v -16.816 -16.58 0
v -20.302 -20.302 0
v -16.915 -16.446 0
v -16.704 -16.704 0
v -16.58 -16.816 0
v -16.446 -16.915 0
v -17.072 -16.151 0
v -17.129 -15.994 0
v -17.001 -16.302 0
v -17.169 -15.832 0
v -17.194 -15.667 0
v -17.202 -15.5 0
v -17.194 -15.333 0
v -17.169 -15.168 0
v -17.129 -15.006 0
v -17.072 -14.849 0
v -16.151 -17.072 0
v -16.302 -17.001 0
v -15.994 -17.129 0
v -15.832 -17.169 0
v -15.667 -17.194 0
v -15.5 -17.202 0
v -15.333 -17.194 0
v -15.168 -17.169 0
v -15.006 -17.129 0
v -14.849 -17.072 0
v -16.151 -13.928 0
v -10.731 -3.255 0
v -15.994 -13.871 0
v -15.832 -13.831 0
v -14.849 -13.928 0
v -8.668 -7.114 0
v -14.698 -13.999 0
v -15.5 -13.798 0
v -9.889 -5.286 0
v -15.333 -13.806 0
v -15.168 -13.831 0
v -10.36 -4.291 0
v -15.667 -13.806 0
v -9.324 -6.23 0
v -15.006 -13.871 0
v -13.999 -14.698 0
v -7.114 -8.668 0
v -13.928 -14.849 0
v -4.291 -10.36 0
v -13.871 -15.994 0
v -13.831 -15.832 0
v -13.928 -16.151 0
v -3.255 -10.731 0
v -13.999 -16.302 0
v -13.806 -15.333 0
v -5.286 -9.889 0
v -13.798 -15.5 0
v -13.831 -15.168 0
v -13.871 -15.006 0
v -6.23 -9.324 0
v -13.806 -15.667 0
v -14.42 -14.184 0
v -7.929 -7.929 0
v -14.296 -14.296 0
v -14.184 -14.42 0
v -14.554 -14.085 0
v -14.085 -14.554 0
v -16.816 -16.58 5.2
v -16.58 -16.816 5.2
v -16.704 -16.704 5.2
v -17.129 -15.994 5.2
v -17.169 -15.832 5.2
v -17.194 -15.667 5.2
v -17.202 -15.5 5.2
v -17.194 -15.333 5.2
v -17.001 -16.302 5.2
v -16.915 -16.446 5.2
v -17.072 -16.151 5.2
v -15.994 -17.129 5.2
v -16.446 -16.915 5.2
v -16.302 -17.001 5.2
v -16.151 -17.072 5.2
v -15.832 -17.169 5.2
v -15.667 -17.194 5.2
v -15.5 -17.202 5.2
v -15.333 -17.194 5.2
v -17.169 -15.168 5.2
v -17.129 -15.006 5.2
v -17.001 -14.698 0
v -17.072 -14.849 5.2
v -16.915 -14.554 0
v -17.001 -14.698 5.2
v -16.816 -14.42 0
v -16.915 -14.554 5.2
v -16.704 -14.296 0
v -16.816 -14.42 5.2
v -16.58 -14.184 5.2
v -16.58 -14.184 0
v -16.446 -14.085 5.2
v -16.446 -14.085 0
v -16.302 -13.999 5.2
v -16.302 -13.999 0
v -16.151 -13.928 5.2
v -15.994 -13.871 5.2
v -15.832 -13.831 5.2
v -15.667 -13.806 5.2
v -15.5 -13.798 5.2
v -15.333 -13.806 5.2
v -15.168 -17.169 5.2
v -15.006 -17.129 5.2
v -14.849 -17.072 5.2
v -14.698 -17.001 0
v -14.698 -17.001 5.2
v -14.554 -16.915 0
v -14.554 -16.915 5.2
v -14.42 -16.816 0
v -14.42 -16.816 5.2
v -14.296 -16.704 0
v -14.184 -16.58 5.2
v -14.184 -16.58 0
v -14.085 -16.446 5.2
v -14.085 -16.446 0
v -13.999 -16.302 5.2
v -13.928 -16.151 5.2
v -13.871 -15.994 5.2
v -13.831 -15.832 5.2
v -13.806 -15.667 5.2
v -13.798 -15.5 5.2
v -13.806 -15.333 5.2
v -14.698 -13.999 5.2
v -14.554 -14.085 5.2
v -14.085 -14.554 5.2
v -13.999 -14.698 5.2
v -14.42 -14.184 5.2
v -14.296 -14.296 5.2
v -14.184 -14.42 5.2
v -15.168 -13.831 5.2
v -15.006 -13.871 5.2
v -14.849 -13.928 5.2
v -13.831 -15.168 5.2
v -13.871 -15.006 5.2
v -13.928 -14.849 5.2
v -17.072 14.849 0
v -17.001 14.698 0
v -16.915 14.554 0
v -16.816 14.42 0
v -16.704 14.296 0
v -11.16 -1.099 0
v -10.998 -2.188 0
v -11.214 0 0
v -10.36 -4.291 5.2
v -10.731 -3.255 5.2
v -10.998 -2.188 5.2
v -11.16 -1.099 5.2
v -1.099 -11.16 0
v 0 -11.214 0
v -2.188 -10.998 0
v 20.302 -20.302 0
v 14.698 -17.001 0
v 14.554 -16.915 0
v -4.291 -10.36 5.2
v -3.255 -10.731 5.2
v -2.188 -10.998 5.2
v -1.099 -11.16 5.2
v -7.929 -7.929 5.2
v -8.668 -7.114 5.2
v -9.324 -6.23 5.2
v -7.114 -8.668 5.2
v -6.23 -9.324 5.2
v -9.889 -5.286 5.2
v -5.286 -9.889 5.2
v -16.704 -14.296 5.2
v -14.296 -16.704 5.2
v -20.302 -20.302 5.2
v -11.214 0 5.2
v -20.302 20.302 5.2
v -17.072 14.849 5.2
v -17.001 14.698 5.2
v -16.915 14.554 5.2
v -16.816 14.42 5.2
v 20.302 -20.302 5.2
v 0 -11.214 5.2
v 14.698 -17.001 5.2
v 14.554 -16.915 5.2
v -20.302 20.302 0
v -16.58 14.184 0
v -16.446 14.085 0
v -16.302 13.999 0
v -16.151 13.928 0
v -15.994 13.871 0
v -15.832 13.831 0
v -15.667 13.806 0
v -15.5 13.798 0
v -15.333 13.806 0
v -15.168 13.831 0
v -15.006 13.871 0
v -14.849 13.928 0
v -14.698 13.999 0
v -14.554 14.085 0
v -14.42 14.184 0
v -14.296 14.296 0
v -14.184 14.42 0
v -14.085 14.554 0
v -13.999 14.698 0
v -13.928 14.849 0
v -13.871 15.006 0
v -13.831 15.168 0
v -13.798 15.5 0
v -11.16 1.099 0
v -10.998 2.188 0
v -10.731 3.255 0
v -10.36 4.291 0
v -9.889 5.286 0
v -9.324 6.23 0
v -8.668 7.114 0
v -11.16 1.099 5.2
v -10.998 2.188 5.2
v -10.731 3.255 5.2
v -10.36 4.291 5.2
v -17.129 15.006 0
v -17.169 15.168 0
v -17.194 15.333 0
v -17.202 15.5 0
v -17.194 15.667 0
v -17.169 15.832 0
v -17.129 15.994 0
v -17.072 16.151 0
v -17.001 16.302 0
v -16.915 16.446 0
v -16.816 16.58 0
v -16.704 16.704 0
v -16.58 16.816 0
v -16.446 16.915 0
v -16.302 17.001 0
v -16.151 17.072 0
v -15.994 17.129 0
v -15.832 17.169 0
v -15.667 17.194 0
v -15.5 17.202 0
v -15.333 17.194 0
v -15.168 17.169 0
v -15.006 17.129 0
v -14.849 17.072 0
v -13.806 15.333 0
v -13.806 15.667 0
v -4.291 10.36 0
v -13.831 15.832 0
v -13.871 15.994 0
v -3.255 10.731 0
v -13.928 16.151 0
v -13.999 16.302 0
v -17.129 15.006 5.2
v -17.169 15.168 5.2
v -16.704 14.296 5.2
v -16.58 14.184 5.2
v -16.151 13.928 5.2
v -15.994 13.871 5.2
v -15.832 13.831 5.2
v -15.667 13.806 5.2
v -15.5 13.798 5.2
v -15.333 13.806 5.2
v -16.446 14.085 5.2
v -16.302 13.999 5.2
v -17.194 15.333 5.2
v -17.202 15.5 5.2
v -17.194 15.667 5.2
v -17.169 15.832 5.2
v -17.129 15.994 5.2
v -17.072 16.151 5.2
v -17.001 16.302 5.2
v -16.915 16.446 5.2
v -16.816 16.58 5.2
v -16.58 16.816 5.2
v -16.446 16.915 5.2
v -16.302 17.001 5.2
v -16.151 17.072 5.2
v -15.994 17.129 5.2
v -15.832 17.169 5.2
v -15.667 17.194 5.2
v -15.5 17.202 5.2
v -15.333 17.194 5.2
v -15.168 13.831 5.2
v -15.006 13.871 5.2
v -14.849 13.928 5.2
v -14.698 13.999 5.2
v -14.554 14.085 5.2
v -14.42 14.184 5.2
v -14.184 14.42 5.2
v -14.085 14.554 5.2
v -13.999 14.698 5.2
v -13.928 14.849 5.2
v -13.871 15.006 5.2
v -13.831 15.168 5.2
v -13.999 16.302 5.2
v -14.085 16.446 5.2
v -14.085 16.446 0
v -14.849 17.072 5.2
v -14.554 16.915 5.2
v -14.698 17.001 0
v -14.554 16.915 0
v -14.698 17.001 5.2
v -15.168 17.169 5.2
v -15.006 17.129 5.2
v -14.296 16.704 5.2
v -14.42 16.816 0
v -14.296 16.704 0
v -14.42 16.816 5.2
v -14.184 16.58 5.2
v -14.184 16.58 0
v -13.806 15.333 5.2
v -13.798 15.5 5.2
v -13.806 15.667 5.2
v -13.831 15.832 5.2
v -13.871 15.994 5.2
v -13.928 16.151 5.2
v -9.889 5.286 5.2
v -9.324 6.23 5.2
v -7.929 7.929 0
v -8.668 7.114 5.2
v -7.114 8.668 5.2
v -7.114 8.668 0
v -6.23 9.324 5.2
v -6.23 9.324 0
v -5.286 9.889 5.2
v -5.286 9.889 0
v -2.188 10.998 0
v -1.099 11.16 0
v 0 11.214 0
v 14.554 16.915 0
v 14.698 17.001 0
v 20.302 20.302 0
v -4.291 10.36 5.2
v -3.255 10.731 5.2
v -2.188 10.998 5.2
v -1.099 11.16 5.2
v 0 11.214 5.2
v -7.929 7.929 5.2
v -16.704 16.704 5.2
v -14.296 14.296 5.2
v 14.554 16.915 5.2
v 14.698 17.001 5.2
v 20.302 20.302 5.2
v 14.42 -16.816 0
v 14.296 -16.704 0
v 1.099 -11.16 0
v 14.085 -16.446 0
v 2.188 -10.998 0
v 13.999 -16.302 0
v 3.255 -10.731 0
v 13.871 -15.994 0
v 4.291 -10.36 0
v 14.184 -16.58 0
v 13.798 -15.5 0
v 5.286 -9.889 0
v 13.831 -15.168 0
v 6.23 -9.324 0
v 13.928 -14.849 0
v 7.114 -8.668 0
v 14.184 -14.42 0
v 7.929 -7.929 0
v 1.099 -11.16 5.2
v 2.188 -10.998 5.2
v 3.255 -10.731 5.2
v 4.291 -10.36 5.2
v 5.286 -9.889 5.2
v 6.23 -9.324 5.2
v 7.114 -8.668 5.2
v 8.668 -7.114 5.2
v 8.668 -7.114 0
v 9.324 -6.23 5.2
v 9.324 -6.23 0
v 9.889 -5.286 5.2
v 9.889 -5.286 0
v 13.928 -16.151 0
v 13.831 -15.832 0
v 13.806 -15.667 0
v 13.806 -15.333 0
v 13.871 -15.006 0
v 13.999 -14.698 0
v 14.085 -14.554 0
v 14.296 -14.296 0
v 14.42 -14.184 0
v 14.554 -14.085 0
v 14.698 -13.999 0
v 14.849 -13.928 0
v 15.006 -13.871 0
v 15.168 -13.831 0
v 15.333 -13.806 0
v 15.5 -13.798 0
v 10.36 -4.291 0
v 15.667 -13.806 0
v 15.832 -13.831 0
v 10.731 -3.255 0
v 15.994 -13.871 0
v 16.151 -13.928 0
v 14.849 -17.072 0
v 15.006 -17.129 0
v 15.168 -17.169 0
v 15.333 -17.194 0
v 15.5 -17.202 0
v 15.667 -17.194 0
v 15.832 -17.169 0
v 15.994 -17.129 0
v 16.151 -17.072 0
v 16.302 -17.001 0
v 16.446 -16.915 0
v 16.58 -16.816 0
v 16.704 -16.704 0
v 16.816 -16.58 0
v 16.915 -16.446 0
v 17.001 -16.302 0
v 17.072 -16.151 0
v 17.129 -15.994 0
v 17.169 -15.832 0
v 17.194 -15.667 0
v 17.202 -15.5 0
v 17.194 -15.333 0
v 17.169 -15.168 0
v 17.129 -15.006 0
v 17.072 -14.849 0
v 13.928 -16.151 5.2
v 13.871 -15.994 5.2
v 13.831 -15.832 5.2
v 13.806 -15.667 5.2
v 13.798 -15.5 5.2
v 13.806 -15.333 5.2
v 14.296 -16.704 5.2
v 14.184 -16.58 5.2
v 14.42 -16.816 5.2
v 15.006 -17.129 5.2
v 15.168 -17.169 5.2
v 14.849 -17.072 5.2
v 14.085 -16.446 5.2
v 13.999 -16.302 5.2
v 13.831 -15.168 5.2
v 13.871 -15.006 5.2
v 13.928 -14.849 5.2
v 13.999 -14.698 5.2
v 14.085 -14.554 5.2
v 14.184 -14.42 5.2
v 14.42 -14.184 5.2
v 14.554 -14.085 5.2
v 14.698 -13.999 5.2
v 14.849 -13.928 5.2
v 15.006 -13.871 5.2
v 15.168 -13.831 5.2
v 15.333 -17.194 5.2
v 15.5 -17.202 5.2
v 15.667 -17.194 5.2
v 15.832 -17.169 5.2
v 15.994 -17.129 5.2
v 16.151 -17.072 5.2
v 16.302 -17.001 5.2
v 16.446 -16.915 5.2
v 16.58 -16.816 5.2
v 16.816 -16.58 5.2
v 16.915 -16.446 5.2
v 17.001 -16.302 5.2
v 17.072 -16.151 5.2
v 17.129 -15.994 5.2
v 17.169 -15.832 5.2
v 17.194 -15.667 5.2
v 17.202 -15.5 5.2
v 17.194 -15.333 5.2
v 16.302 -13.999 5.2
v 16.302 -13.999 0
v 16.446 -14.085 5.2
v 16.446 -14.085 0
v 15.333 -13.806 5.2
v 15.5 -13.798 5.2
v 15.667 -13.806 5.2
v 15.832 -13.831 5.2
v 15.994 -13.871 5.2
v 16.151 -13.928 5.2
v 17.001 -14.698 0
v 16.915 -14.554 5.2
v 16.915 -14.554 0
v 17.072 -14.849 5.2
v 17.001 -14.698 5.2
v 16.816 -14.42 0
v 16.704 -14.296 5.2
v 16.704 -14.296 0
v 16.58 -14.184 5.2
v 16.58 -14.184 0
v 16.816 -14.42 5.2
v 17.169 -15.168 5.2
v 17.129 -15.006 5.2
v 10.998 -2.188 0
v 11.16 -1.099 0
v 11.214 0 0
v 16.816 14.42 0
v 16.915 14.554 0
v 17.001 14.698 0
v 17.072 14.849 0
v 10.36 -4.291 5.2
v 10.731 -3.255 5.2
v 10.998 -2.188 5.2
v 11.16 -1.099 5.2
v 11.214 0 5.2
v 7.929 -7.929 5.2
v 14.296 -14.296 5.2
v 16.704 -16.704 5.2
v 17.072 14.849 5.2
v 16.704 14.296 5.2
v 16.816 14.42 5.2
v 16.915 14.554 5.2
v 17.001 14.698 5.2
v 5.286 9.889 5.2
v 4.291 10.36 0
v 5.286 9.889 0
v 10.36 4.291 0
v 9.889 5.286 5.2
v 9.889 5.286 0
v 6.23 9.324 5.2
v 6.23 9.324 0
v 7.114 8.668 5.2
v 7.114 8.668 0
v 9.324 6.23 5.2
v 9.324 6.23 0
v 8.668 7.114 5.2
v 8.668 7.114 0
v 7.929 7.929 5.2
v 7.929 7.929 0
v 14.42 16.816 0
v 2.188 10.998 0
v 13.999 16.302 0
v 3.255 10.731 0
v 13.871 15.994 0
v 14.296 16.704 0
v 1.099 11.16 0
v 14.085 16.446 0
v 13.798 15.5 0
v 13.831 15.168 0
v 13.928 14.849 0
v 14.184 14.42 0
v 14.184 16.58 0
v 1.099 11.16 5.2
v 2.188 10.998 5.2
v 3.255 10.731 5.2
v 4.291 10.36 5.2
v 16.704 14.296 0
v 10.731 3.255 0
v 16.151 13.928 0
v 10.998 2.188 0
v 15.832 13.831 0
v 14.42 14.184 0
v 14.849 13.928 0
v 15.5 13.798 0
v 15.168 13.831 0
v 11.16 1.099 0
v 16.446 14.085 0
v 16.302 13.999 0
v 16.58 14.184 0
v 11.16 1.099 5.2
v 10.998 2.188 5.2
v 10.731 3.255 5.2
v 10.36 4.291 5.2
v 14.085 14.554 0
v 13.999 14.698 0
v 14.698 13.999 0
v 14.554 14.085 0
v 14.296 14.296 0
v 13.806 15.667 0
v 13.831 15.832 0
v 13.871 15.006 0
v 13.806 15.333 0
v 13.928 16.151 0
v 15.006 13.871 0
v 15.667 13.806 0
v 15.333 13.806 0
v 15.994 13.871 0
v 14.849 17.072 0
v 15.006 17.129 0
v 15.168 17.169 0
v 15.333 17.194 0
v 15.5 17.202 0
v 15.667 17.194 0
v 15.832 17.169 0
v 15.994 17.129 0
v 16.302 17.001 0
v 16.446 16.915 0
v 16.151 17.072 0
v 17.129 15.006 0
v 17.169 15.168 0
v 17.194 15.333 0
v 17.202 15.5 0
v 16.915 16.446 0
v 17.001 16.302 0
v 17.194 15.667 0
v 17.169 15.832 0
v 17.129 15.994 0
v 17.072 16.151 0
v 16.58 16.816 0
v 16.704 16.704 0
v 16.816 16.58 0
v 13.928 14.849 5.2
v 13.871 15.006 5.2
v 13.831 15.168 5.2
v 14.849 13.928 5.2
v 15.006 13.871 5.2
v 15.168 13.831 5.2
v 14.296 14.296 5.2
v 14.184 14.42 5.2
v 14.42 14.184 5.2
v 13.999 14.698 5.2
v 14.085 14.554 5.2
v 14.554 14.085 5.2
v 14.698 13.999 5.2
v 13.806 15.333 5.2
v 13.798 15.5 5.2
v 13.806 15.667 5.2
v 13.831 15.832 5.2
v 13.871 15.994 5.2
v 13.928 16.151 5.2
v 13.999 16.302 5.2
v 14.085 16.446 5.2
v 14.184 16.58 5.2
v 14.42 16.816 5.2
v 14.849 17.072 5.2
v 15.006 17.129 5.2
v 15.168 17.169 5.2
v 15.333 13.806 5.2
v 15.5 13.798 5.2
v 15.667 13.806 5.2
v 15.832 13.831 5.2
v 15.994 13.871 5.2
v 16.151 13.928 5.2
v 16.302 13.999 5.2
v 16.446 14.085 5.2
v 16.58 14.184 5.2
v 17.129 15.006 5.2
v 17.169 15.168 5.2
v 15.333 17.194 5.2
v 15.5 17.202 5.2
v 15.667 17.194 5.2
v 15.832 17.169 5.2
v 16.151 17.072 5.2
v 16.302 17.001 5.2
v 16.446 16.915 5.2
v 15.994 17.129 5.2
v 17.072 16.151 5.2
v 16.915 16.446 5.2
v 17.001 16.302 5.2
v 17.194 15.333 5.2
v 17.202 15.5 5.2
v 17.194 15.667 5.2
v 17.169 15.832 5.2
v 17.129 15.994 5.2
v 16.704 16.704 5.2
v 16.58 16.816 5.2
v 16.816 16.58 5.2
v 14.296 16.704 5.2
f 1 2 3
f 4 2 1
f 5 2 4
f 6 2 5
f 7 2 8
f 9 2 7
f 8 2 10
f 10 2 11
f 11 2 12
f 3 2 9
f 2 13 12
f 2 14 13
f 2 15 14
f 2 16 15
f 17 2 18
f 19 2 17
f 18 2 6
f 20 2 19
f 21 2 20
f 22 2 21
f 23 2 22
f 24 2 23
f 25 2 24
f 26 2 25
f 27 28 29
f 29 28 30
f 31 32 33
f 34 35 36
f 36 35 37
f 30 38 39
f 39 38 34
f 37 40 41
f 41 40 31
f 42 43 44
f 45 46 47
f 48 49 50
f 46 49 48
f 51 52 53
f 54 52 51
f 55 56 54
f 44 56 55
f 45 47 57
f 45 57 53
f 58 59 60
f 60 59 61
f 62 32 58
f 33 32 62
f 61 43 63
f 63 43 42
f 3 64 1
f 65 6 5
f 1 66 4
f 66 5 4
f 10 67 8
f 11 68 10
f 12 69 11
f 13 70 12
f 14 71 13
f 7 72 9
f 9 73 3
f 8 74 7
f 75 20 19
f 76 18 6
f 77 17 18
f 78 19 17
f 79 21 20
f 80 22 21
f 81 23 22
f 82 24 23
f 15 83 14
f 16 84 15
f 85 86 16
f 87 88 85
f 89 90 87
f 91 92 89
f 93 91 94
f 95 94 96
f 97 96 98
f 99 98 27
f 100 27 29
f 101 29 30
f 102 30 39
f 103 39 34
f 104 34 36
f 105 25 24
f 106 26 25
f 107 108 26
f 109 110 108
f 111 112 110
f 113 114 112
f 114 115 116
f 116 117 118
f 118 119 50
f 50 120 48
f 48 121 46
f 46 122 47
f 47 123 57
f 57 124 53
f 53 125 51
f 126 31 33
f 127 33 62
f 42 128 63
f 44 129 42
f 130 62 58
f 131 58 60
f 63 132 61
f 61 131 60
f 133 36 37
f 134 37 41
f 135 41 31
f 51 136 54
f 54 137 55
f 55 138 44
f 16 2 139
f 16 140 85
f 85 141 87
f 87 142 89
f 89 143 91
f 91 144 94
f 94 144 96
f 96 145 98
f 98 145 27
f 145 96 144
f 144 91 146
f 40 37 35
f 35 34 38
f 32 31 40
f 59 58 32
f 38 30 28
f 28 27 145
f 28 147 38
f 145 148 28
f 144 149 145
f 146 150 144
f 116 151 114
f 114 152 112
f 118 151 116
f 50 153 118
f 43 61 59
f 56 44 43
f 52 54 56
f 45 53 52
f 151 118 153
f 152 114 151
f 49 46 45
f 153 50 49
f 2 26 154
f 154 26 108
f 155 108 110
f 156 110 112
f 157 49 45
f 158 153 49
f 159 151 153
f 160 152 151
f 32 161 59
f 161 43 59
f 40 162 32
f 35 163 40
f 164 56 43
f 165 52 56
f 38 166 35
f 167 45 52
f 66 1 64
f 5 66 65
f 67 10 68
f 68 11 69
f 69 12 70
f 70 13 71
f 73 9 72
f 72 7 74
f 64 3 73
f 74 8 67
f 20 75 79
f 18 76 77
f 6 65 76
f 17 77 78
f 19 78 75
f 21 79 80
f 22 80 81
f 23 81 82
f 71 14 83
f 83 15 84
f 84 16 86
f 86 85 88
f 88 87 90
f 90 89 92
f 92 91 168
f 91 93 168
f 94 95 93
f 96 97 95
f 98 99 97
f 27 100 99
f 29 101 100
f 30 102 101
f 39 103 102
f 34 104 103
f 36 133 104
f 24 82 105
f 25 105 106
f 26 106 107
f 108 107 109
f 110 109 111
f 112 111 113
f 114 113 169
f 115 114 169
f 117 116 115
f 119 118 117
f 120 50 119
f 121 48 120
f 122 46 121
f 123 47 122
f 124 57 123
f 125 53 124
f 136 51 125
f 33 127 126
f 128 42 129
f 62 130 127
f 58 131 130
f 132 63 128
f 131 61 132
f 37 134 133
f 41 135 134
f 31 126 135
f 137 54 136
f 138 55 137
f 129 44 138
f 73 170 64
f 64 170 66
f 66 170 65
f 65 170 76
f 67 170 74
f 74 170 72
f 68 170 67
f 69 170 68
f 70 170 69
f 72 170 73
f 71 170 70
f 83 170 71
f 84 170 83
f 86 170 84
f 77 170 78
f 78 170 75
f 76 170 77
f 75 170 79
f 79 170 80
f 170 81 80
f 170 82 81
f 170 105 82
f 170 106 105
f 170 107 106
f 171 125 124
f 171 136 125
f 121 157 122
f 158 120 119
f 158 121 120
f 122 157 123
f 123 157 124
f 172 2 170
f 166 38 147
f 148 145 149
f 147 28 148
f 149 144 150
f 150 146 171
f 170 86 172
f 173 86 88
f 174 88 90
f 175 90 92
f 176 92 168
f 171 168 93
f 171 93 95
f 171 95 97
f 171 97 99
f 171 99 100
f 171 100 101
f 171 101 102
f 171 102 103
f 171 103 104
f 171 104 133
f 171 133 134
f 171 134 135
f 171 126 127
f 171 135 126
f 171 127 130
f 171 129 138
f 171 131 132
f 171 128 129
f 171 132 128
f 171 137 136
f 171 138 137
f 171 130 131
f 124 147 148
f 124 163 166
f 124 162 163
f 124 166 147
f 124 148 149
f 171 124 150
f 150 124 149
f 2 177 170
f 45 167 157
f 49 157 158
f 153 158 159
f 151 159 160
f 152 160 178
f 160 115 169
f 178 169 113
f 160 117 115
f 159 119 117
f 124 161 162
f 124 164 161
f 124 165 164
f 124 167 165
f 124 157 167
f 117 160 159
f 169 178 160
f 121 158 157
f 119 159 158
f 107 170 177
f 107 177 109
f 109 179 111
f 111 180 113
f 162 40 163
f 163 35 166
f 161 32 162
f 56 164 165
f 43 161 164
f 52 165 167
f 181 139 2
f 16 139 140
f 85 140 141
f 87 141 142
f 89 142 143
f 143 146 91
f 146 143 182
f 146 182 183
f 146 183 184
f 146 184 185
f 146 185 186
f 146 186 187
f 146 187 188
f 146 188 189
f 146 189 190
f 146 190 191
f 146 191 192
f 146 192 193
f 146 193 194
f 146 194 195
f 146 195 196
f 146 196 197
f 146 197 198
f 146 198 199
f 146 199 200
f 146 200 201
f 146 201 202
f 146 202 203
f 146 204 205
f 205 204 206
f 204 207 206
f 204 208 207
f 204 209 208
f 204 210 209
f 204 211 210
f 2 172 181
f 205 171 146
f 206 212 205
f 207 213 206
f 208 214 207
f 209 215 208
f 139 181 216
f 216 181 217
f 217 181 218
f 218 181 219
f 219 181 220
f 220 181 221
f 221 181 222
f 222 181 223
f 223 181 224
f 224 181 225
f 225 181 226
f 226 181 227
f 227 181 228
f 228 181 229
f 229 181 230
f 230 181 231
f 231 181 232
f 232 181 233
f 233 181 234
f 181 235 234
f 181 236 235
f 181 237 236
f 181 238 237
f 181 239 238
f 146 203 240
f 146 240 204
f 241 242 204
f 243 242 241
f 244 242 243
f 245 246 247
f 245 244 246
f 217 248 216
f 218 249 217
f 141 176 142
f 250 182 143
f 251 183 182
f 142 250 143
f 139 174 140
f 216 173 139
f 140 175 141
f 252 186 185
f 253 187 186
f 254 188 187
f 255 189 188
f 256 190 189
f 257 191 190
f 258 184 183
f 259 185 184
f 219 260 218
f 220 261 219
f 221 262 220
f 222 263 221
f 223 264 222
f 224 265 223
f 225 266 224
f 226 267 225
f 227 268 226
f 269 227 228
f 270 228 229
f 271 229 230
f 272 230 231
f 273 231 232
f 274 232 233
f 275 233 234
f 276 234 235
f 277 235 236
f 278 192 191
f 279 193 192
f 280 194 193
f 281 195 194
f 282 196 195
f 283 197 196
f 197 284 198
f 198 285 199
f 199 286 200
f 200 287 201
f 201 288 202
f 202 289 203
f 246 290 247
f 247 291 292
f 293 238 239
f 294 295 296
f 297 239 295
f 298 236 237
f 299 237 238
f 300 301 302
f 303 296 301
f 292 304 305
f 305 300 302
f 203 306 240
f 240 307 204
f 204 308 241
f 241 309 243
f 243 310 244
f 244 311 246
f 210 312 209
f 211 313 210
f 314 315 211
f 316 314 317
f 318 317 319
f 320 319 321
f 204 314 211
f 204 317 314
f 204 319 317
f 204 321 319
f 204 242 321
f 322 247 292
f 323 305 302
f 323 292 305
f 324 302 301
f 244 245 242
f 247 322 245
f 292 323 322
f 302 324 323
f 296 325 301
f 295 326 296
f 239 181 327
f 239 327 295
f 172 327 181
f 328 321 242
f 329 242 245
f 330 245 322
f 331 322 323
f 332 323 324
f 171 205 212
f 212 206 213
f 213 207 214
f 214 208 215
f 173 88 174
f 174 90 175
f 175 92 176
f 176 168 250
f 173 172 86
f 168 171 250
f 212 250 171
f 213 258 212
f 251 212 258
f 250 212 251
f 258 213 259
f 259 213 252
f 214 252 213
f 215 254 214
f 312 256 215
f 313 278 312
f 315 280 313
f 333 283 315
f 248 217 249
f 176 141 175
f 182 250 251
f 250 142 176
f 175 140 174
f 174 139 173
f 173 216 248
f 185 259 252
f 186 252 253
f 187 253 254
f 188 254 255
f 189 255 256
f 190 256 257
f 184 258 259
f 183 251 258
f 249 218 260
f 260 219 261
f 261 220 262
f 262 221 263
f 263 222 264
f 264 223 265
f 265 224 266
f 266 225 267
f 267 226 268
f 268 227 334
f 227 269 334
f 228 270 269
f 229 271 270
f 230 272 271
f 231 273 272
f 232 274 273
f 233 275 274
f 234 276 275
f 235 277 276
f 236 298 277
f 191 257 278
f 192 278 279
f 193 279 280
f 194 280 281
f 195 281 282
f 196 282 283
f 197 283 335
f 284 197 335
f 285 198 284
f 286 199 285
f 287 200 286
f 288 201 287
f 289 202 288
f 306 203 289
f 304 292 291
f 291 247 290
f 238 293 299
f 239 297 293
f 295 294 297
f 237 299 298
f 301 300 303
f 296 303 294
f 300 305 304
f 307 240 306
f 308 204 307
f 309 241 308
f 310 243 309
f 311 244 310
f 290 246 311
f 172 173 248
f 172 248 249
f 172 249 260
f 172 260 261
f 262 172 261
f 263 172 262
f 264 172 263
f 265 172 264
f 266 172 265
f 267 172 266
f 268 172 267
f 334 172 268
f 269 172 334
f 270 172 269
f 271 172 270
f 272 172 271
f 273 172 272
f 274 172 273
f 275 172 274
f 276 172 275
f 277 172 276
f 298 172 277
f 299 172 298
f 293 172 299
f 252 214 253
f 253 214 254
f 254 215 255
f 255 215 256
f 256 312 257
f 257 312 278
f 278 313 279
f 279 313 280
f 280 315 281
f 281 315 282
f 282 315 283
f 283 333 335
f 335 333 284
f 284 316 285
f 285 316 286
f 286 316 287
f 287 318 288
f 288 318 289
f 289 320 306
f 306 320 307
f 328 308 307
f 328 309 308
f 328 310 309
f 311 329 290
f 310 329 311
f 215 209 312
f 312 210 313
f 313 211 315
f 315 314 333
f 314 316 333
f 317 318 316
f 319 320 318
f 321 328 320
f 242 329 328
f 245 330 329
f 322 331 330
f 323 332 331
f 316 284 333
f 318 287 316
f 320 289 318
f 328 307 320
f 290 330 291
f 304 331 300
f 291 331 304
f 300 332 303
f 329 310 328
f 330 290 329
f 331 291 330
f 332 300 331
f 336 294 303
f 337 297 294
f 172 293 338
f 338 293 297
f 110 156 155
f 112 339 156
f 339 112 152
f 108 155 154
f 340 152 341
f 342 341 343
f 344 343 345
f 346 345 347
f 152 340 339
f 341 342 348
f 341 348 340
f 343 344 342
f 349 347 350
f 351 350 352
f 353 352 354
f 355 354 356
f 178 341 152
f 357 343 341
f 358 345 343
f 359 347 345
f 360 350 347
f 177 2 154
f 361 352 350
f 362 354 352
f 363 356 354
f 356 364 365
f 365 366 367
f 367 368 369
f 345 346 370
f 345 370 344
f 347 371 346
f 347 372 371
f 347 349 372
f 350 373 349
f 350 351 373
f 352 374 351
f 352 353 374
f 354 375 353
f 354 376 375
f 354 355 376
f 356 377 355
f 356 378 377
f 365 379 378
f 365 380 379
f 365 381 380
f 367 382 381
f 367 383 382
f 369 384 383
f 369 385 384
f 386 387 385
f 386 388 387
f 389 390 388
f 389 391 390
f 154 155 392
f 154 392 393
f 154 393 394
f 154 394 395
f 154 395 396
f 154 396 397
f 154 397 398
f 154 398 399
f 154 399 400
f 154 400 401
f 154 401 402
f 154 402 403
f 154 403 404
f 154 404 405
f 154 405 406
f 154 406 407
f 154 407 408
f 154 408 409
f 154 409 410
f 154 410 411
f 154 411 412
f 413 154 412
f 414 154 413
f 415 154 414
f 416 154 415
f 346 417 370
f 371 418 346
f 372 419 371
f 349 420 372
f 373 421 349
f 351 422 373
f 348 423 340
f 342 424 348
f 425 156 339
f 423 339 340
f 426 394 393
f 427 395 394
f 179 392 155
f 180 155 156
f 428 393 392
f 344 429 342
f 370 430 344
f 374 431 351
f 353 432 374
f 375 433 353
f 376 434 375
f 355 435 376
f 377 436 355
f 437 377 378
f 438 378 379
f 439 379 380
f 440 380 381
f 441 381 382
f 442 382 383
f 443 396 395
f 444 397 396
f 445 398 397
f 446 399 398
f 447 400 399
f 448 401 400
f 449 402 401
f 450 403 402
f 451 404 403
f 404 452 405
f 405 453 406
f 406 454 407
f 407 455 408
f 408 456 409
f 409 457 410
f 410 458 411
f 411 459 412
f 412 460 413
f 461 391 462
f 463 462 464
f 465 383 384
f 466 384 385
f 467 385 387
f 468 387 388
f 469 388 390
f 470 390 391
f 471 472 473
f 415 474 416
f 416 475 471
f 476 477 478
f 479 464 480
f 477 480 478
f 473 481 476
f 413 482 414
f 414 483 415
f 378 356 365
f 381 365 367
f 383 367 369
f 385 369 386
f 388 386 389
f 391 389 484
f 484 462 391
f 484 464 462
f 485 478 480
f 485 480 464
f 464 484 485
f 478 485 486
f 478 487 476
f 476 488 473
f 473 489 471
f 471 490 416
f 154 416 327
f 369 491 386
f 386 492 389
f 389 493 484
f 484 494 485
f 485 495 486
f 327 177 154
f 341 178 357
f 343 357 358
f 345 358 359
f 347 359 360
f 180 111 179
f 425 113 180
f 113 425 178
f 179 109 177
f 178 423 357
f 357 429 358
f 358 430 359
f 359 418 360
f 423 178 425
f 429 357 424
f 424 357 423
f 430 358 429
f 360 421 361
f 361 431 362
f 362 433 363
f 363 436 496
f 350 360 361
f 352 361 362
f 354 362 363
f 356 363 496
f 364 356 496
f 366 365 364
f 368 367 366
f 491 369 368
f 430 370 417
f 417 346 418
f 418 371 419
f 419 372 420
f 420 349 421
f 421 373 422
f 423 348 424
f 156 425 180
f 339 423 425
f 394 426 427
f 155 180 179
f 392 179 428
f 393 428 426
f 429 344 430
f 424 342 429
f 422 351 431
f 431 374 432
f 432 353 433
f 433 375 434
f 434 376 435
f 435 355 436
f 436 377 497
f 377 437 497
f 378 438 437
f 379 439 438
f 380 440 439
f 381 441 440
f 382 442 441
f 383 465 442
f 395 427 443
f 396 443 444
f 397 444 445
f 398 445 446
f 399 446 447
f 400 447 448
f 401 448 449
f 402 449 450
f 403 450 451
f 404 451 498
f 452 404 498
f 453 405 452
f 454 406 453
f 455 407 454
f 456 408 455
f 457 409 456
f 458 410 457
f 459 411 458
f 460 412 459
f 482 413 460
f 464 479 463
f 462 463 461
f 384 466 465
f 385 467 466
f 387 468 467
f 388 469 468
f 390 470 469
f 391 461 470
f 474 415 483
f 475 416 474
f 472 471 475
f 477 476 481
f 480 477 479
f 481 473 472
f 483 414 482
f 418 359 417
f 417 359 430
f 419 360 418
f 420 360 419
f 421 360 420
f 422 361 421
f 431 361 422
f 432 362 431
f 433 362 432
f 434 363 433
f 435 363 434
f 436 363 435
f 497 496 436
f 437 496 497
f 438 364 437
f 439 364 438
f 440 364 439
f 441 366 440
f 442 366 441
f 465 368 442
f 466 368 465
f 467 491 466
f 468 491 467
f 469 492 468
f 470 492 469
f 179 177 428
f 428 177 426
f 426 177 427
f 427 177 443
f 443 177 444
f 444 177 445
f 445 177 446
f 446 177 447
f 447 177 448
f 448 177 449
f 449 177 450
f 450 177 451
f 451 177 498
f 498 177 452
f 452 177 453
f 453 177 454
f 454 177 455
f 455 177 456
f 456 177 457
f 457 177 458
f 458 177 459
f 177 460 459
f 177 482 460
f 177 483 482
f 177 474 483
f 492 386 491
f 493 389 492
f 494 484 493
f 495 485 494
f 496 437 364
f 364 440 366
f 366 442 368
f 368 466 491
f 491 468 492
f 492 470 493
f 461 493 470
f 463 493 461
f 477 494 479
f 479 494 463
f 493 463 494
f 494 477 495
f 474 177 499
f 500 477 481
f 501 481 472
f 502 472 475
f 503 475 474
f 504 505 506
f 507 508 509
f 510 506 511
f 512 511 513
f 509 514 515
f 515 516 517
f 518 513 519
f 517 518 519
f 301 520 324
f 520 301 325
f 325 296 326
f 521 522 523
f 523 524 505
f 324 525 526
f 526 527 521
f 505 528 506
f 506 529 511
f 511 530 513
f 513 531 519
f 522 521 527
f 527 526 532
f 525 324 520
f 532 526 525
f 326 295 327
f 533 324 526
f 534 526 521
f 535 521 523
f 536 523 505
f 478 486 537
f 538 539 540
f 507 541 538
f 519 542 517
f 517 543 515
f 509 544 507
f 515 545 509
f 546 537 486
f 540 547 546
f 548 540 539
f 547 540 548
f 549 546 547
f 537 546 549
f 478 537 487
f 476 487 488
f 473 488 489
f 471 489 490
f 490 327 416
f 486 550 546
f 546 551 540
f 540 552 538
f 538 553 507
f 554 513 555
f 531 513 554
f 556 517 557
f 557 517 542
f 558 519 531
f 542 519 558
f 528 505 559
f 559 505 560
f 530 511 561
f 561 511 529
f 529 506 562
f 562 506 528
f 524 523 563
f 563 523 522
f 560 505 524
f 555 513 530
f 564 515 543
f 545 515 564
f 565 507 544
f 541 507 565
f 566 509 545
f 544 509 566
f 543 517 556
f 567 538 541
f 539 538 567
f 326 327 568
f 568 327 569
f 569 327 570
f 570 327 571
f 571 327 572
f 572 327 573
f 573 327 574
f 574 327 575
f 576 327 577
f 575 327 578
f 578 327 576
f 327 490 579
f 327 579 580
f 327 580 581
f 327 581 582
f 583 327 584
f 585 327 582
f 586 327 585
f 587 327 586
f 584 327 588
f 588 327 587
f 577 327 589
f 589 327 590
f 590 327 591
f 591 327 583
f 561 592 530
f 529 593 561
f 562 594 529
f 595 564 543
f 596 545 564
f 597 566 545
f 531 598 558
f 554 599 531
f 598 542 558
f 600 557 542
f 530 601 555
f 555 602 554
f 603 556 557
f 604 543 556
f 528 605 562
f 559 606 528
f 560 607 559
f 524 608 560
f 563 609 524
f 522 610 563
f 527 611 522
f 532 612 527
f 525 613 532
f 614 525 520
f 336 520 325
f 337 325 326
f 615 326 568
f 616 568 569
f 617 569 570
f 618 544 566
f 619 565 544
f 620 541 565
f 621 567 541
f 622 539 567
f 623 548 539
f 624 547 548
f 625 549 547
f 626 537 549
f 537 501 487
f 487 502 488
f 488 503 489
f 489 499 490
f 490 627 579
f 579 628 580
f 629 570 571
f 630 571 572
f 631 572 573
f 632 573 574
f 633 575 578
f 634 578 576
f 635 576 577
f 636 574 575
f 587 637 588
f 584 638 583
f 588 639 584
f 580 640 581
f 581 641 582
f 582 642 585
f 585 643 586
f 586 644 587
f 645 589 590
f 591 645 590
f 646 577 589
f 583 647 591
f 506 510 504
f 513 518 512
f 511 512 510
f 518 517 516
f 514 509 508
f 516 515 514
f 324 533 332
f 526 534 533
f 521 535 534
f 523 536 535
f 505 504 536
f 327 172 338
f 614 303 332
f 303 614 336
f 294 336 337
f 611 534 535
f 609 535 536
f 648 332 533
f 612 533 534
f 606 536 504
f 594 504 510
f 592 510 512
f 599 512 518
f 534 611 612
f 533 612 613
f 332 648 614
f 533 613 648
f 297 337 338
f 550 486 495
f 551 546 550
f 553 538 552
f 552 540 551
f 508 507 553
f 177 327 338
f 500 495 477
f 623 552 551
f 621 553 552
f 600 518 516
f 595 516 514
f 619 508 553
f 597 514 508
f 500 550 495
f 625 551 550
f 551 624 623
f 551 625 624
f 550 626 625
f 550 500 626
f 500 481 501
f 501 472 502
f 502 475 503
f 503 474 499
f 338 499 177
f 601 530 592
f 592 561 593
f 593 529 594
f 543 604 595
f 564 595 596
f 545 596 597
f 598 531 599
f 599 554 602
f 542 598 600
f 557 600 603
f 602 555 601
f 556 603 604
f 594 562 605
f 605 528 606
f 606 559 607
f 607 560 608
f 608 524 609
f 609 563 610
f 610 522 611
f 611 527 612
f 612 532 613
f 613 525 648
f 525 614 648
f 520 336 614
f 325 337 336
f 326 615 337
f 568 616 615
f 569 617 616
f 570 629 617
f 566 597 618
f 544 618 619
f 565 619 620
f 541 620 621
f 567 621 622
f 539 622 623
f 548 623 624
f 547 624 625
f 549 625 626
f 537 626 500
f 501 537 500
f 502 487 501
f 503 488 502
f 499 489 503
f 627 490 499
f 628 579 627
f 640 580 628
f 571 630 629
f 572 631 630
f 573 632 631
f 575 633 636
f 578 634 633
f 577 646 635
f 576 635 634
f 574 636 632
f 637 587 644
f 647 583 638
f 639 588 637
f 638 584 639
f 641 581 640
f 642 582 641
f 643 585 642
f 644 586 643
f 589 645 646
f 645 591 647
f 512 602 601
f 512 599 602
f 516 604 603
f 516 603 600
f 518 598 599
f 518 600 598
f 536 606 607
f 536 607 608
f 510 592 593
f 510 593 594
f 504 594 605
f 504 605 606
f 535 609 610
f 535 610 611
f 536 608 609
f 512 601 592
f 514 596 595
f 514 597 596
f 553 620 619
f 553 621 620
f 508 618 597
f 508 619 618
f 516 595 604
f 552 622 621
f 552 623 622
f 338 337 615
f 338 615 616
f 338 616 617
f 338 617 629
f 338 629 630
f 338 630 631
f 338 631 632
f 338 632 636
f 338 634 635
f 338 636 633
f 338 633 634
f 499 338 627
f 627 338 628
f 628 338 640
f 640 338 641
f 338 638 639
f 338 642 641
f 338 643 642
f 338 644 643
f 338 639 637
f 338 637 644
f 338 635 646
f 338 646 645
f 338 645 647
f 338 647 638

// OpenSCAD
// assembly: printed bodies in the closed pose; references are % ghosts (never printed)
color("#4f81bd") {
  // body plate
  difference() {
    union() {
      // body plate (plate)
      multmatrix([[1, 0, 0, 0], [0, 1, 0, 0], [0, 0, 1, 0], [0, 0, 0, 1]]) translate([-20.30205, -20.30205, 0]) cube([40.6041, 40.6041, 5.2]);
    }
    // cut slot_0 (bolt_slot)
    multmatrix([[1, 0, 0, -15.5], [0, 1, 0, -15.5], [0, 0, 1, -1], [0, 0, 0, 1]]) linear_extrude(height=7.2) polygon(points=[[0, -1.70205], [0.16683, -1.693854], [0.332054, -1.669346], [0.494079, -1.62876], [0.651346, -1.572489], [0.802341, -1.501074], [0.945608, -1.415203], [1.079769, -1.315703], [1.203531, -1.203531], [1.315703, -1.079769], [1.415203, -0.945608], [1.501074, -0.802341], [1.572489, -0.651346], [1.62876, -0.494079], [1.669346, -0.332054], [1.693854, -0.16683], [1.70205, 0], [1.70205, 0], [1.693854, 0.16683], [1.669346, 0.332054], [1.62876, 0.494079], [1.572489, 0.651346], [1.501074, 0.802341], [1.415203, 0.945608], [1.315703, 1.079769], [1.203531, 1.203531], [1.079769, 1.315703], [0.945608, 1.415203], [0.802341, 1.501074], [0.651346, 1.572489], [0.494079, 1.62876], [0.332054, 1.669346], [0.16683, 1.693854], [0, 1.70205], [0, 1.70205], [-0.16683, 1.693854], [-0.332054, 1.669346], [-0.494079, 1.62876], [-0.651346, 1.572489], [-0.802341, 1.501074], [-0.945608, 1.415203], [-1.079769, 1.315703], [-1.203531, 1.203531], [-1.315703, 1.079769], [-1.415203, 0.945608], [-1.501074, 0.802341], [-1.572489, 0.651346], [-1.62876, 0.494079], [-1.669346, 0.332054], [-1.693854, 0.16683], [-1.70205, 0], [-1.70205, 0], [-1.693854, -0.16683], [-1.669346, -0.332054], [-1.62876, -0.494079], [-1.572489, -0.651346], [-1.501074, -0.802341], [-1.415203, -0.945608], [-1.315703, -1.079769], [-1.203531, -1.203531], [-1.079769, -1.315703], [-0.945608, -1.415203], [-0.802341, -1.501074], [-0.651346, -1.572489], [-0.494079, -1.62876], [-0.332054, -1.669346], [-0.16683, -1.693854], [0, -1.70205]]);
    // cut slot_1 (bolt_slot)
    multmatrix([[1, 0, 0, 15.5], [0, 1, 0, -15.5], [0, 0, 1, -1], [0, 0, 0, 1]]) linear_extrude(height=7.2) polygon(points=[[0, -1.70205], [0.16683, -1.693854], [0.332054, -1.669346], [0.494079, -1.62876], [0.651346, -1.572489], [0.802341, -1.501074], [0.945608, -1.415203], [1.079769, -1.315703], [1.203531, -1.203531], [1.315703, -1.079769], [1.415203, -0.945608], [1.501074, -0.802341], [1.572489, -0.651346], [1.62876, -0.494079], [1.669346, -0.332054], [1.693854, -0.16683], [1.70205, 0], [1.70205, 0], [1.693854, 0.16683], [1.669346, 0.332054], [1.62876, 0.494079], [1.572489, 0.651346], [1.501074, 0.802341], [1.415203, 0.945608], [1.315703, 1.079769], [1.203531, 1.203531], [1.079769, 1.315703], [0.945608, 1.415203], [0.802341, 1.501074], [0.651346, 1.572489], [0.494079, 1.62876], [0.332054, 1.669346], [0.16683, 1.693854], [0, 1.70205], [0, 1.70205], [-0.16683, 1.693854], [-0.332054, 1.669346], [-0.494079, 1.62876], [-0.651346, 1.572489], [-0.802341, 1.501074], [-0.945608, 1.415203], [-1.079769, 1.315703], [-1.203531, 1.203531], [-1.315703, 1.079769], [-1.415203, 0.945608], [-1.501074, 0.802341], [-1.572489, 0.651346], [-1.62876, 0.494079], [-1.669346, 0.332054], [-1.693854, 0.16683], [-1.70205, 0], [-1.70205, 0], [-1.693854, -0.16683], [-1.669346, -0.332054], [-1.62876, -0.494079], [-1.572489, -0.651346], [-1.501074, -0.802341], [-1.415203, -0.945608], [-1.315703, -1.079769], [-1.203531, -1.203531], [-1.079769, -1.315703], [-0.945608, -1.415203], [-0.802341, -1.501074], [-0.651346, -1.572489], [-0.494079, -1.62876], [-0.332054, -1.669346], [-0.16683, -1.693854], [0, -1.70205]]);
    // cut slot_2 (bolt_slot)
    multmatrix([[1, 0, 0, -15.5], [0, 1, 0, 15.5], [0, 0, 1, -1], [0, 0, 0, 1]]) linear_extrude(height=7.2) polygon(points=[[0, -1.70205], [0.16683, -1.693854], [0.332054, -1.669346], [0.494079, -1.62876], [0.651346, -1.572489], [0.802341, -1.501074], [0.945608, -1.415203], [1.079769, -1.315703], [1.203531, -1.203531], [1.315703, -1.079769], [1.415203, -0.945608], [1.501074, -0.802341], [1.572489, -0.651346], [1.62876, -0.494079], [1.669346, -0.332054], [1.693854, -0.16683], [1.70205, 0], [1.70205, 0], [1.693854, 0.16683], [1.669346, 0.332054], [1.62876, 0.494079], [1.572489, 0.651346], [1.501074, 0.802341], [1.415203, 0.945608], [1.315703, 1.079769], [1.203531, 1.203531], [1.079769, 1.315703], [0.945608, 1.415203], [0.802341, 1.501074], [0.651346, 1.572489], [0.494079, 1.62876], [0.332054, 1.669346], [0.16683, 1.693854], [0, 1.70205], [0, 1.70205], [-0.16683, 1.693854], [-0.332054, 1.669346], [-0.494079, 1.62876], [-0.651346, 1.572489], [-0.802341, 1.501074], [-0.945608, 1.415203], [-1.079769, 1.315703], [-1.203531, 1.203531], [-1.315703, 1.079769], [-1.415203, 0.945608], [-1.501074, 0.802341], [-1.572489, 0.651346], [-1.62876, 0.494079], [-1.669346, 0.332054], [-1.693854, 0.16683], [-1.70205, 0], [-1.70205, 0], [-1.693854, -0.16683], [-1.669346, -0.332054], [-1.62876, -0.494079], [-1.572489, -0.651346], [-1.501074, -0.802341], [-1.415203, -0.945608], [-1.315703, -1.079769], [-1.203531, -1.203531], [-1.079769, -1.315703], [-0.945608, -1.415203], [-0.802341, -1.501074], [-0.651346, -1.572489], [-0.494079, -1.62876], [-0.332054, -1.669346], [-0.16683, -1.693854], [0, -1.70205]]);
    // cut slot_3 (bolt_slot)
    multmatrix([[1, 0, 0, 15.5], [0, 1, 0, 15.5], [0, 0, 1, -1], [0, 0, 0, 1]]) linear_extrude(height=7.2) polygon(points=[[0, -1.70205], [0.16683, -1.693854], [0.332054, -1.669346], [0.494079, -1.62876], [0.651346, -1.572489], [0.802341, -1.501074], [0.945608, -1.415203], [1.079769, -1.315703], [1.203531, -1.203531], [1.315703, -1.079769], [1.415203, -0.945608], [1.501074, -0.802341], [1.572489, -0.651346], [1.62876, -0.494079], [1.669346, -0.332054], [1.693854, -0.16683], [1.70205, 0], [1.70205, 0], [1.693854, 0.16683], [1.669346, 0.332054], [1.62876, 0.494079], [1.572489, 0.651346], [1.501074, 0.802341], [1.415203, 0.945608], [1.315703, 1.079769], [1.203531, 1.203531], [1.079769, 1.315703], [0.945608, 1.415203], [0.802341, 1.501074], [0.651346, 1.572489], [0.494079, 1.62876], [0.332054, 1.669346], [0.16683, 1.693854], [0, 1.70205], [0, 1.70205], [-0.16683, 1.693854], [-0.332054, 1.669346], [-0.494079, 1.62876], [-0.651346, 1.572489], [-0.802341, 1.501074], [-0.945608, 1.415203], [-1.079769, 1.315703], [-1.203531, 1.203531], [-1.315703, 1.079769], [-1.415203, 0.945608], [-1.501074, 0.802341], [-1.572489, 0.651346], [-1.62876, 0.494079], [-1.669346, 0.332054], [-1.693854, 0.16683], [-1.70205, 0], [-1.70205, 0], [-1.693854, -0.16683], [-1.669346, -0.332054], [-1.62876, -0.494079], [-1.572489, -0.651346], [-1.501074, -0.802341], [-1.415203, -0.945608], [-1.315703, -1.079769], [-1.203531, -1.203531], [-1.079769, -1.315703], [-0.945608, -1.415203], [-0.802341, -1.501074], [-0.651346, -1.572489], [-0.494079, -1.62876], [-0.332054, -1.669346], [-0.16683, -1.693854], [0, -1.70205]]);
    // cut clear_pilot (recess)
    multmatrix([[1, 0, 0, 0], [0, 1, 0, 0], [0, 0, 1, -1], [0, 0, 0, 1]]) cylinder(h=7.2, d=22.427014, $fn=64);
    // cut clear_shaft (recess)
    multmatrix([[1, 0, 0, 0], [0, 1, 0, 0], [0, 0, 1, -1], [0, 0, 0, 1]]) cylinder(h=7.2, d=5.406512, $fn=64);
  }
}
%color("#7f7f7f") multmatrix([[1, 0, 0, 0], [0, 1, 0, 0], [0, 0, 1, 0], [0, 0, 0, 1]]) union() { multmatrix([[1, 0, 0, -21.15], [0, 1, 0, -21.15], [0, 0, 1, -40], [0, 0, 0, 1]]) cube([42.3, 42.3, 40]); multmatrix([[1, 0, 0, 0], [0, 1, 0, 0], [0, 0, 1, 0], [0, 0, 0, 1]]) cylinder(h=2, d=22, $fn=64); multmatrix([[1, 0, 0, 0], [0, 1, 0, 0], [0, 0, 1, 0], [0, 0, 0, 1]]) cylinder(h=24, d=5, $fn=64); } // ghost board
%color("#7f7f7f") multmatrix([[1, 0, 0, -15.5], [0, 1, 0, -15.5], [0, 0, 1, 5.2], [0, 0, 0, 1]]) union() { multmatrix([[1, 0, 0, 0], [0, 1, 0, 0], [0, 0, 1, -8], [0, 0, 0, 1]]) cylinder(h=8, d=3, $fn=64); multmatrix([[1, 0, 0, 0], [0, 1, 0, 0], [0, 0, 1, 0], [0, 0, 0, 1]]) cylinder(h=3, d=5.5, $fn=64); } // ghost bolt_0
%color("#7f7f7f") multmatrix([[1, 0, 0, 15.5], [0, 1, 0, -15.5], [0, 0, 1, 5.2], [0, 0, 0, 1]]) union() { multmatrix([[1, 0, 0, 0], [0, 1, 0, 0], [0, 0, 1, -8], [0, 0, 0, 1]]) cylinder(h=8, d=3, $fn=64); multmatrix([[1, 0, 0, 0], [0, 1, 0, 0], [0, 0, 1, 0], [0, 0, 0, 1]]) cylinder(h=3, d=5.5, $fn=64); } // ghost bolt_1
%color("#7f7f7f") multmatrix([[1, 0, 0, -15.5], [0, 1, 0, 15.5], [0, 0, 1, 5.2], [0, 0, 0, 1]]) union() { multmatrix([[1, 0, 0, 0], [0, 1, 0, 0], [0, 0, 1, -8], [0, 0, 0, 1]]) cylinder(h=8, d=3, $fn=64); multmatrix([[1, 0, 0, 0], [0, 1, 0, 0], [0, 0, 1, 0], [0, 0, 0, 1]]) cylinder(h=3, d=5.5, $fn=64); } // ghost bolt_2
%color("#7f7f7f") multmatrix([[1, 0, 0, 15.5], [0, 1, 0, 15.5], [0, 0, 1, 5.2], [0, 0, 0, 1]]) union() { multmatrix([[1, 0, 0, 0], [0, 1, 0, 0], [0, 0, 1, -8], [0, 0, 0, 1]]) cylinder(h=8, d=3, $fn=64); multmatrix([[1, 0, 0, 0], [0, 1, 0, 0], [0, 0, 1, 0], [0, 0, 0, 1]]) cylinder(h=3, d=5.5, $fn=64); } // ghost bolt_3
